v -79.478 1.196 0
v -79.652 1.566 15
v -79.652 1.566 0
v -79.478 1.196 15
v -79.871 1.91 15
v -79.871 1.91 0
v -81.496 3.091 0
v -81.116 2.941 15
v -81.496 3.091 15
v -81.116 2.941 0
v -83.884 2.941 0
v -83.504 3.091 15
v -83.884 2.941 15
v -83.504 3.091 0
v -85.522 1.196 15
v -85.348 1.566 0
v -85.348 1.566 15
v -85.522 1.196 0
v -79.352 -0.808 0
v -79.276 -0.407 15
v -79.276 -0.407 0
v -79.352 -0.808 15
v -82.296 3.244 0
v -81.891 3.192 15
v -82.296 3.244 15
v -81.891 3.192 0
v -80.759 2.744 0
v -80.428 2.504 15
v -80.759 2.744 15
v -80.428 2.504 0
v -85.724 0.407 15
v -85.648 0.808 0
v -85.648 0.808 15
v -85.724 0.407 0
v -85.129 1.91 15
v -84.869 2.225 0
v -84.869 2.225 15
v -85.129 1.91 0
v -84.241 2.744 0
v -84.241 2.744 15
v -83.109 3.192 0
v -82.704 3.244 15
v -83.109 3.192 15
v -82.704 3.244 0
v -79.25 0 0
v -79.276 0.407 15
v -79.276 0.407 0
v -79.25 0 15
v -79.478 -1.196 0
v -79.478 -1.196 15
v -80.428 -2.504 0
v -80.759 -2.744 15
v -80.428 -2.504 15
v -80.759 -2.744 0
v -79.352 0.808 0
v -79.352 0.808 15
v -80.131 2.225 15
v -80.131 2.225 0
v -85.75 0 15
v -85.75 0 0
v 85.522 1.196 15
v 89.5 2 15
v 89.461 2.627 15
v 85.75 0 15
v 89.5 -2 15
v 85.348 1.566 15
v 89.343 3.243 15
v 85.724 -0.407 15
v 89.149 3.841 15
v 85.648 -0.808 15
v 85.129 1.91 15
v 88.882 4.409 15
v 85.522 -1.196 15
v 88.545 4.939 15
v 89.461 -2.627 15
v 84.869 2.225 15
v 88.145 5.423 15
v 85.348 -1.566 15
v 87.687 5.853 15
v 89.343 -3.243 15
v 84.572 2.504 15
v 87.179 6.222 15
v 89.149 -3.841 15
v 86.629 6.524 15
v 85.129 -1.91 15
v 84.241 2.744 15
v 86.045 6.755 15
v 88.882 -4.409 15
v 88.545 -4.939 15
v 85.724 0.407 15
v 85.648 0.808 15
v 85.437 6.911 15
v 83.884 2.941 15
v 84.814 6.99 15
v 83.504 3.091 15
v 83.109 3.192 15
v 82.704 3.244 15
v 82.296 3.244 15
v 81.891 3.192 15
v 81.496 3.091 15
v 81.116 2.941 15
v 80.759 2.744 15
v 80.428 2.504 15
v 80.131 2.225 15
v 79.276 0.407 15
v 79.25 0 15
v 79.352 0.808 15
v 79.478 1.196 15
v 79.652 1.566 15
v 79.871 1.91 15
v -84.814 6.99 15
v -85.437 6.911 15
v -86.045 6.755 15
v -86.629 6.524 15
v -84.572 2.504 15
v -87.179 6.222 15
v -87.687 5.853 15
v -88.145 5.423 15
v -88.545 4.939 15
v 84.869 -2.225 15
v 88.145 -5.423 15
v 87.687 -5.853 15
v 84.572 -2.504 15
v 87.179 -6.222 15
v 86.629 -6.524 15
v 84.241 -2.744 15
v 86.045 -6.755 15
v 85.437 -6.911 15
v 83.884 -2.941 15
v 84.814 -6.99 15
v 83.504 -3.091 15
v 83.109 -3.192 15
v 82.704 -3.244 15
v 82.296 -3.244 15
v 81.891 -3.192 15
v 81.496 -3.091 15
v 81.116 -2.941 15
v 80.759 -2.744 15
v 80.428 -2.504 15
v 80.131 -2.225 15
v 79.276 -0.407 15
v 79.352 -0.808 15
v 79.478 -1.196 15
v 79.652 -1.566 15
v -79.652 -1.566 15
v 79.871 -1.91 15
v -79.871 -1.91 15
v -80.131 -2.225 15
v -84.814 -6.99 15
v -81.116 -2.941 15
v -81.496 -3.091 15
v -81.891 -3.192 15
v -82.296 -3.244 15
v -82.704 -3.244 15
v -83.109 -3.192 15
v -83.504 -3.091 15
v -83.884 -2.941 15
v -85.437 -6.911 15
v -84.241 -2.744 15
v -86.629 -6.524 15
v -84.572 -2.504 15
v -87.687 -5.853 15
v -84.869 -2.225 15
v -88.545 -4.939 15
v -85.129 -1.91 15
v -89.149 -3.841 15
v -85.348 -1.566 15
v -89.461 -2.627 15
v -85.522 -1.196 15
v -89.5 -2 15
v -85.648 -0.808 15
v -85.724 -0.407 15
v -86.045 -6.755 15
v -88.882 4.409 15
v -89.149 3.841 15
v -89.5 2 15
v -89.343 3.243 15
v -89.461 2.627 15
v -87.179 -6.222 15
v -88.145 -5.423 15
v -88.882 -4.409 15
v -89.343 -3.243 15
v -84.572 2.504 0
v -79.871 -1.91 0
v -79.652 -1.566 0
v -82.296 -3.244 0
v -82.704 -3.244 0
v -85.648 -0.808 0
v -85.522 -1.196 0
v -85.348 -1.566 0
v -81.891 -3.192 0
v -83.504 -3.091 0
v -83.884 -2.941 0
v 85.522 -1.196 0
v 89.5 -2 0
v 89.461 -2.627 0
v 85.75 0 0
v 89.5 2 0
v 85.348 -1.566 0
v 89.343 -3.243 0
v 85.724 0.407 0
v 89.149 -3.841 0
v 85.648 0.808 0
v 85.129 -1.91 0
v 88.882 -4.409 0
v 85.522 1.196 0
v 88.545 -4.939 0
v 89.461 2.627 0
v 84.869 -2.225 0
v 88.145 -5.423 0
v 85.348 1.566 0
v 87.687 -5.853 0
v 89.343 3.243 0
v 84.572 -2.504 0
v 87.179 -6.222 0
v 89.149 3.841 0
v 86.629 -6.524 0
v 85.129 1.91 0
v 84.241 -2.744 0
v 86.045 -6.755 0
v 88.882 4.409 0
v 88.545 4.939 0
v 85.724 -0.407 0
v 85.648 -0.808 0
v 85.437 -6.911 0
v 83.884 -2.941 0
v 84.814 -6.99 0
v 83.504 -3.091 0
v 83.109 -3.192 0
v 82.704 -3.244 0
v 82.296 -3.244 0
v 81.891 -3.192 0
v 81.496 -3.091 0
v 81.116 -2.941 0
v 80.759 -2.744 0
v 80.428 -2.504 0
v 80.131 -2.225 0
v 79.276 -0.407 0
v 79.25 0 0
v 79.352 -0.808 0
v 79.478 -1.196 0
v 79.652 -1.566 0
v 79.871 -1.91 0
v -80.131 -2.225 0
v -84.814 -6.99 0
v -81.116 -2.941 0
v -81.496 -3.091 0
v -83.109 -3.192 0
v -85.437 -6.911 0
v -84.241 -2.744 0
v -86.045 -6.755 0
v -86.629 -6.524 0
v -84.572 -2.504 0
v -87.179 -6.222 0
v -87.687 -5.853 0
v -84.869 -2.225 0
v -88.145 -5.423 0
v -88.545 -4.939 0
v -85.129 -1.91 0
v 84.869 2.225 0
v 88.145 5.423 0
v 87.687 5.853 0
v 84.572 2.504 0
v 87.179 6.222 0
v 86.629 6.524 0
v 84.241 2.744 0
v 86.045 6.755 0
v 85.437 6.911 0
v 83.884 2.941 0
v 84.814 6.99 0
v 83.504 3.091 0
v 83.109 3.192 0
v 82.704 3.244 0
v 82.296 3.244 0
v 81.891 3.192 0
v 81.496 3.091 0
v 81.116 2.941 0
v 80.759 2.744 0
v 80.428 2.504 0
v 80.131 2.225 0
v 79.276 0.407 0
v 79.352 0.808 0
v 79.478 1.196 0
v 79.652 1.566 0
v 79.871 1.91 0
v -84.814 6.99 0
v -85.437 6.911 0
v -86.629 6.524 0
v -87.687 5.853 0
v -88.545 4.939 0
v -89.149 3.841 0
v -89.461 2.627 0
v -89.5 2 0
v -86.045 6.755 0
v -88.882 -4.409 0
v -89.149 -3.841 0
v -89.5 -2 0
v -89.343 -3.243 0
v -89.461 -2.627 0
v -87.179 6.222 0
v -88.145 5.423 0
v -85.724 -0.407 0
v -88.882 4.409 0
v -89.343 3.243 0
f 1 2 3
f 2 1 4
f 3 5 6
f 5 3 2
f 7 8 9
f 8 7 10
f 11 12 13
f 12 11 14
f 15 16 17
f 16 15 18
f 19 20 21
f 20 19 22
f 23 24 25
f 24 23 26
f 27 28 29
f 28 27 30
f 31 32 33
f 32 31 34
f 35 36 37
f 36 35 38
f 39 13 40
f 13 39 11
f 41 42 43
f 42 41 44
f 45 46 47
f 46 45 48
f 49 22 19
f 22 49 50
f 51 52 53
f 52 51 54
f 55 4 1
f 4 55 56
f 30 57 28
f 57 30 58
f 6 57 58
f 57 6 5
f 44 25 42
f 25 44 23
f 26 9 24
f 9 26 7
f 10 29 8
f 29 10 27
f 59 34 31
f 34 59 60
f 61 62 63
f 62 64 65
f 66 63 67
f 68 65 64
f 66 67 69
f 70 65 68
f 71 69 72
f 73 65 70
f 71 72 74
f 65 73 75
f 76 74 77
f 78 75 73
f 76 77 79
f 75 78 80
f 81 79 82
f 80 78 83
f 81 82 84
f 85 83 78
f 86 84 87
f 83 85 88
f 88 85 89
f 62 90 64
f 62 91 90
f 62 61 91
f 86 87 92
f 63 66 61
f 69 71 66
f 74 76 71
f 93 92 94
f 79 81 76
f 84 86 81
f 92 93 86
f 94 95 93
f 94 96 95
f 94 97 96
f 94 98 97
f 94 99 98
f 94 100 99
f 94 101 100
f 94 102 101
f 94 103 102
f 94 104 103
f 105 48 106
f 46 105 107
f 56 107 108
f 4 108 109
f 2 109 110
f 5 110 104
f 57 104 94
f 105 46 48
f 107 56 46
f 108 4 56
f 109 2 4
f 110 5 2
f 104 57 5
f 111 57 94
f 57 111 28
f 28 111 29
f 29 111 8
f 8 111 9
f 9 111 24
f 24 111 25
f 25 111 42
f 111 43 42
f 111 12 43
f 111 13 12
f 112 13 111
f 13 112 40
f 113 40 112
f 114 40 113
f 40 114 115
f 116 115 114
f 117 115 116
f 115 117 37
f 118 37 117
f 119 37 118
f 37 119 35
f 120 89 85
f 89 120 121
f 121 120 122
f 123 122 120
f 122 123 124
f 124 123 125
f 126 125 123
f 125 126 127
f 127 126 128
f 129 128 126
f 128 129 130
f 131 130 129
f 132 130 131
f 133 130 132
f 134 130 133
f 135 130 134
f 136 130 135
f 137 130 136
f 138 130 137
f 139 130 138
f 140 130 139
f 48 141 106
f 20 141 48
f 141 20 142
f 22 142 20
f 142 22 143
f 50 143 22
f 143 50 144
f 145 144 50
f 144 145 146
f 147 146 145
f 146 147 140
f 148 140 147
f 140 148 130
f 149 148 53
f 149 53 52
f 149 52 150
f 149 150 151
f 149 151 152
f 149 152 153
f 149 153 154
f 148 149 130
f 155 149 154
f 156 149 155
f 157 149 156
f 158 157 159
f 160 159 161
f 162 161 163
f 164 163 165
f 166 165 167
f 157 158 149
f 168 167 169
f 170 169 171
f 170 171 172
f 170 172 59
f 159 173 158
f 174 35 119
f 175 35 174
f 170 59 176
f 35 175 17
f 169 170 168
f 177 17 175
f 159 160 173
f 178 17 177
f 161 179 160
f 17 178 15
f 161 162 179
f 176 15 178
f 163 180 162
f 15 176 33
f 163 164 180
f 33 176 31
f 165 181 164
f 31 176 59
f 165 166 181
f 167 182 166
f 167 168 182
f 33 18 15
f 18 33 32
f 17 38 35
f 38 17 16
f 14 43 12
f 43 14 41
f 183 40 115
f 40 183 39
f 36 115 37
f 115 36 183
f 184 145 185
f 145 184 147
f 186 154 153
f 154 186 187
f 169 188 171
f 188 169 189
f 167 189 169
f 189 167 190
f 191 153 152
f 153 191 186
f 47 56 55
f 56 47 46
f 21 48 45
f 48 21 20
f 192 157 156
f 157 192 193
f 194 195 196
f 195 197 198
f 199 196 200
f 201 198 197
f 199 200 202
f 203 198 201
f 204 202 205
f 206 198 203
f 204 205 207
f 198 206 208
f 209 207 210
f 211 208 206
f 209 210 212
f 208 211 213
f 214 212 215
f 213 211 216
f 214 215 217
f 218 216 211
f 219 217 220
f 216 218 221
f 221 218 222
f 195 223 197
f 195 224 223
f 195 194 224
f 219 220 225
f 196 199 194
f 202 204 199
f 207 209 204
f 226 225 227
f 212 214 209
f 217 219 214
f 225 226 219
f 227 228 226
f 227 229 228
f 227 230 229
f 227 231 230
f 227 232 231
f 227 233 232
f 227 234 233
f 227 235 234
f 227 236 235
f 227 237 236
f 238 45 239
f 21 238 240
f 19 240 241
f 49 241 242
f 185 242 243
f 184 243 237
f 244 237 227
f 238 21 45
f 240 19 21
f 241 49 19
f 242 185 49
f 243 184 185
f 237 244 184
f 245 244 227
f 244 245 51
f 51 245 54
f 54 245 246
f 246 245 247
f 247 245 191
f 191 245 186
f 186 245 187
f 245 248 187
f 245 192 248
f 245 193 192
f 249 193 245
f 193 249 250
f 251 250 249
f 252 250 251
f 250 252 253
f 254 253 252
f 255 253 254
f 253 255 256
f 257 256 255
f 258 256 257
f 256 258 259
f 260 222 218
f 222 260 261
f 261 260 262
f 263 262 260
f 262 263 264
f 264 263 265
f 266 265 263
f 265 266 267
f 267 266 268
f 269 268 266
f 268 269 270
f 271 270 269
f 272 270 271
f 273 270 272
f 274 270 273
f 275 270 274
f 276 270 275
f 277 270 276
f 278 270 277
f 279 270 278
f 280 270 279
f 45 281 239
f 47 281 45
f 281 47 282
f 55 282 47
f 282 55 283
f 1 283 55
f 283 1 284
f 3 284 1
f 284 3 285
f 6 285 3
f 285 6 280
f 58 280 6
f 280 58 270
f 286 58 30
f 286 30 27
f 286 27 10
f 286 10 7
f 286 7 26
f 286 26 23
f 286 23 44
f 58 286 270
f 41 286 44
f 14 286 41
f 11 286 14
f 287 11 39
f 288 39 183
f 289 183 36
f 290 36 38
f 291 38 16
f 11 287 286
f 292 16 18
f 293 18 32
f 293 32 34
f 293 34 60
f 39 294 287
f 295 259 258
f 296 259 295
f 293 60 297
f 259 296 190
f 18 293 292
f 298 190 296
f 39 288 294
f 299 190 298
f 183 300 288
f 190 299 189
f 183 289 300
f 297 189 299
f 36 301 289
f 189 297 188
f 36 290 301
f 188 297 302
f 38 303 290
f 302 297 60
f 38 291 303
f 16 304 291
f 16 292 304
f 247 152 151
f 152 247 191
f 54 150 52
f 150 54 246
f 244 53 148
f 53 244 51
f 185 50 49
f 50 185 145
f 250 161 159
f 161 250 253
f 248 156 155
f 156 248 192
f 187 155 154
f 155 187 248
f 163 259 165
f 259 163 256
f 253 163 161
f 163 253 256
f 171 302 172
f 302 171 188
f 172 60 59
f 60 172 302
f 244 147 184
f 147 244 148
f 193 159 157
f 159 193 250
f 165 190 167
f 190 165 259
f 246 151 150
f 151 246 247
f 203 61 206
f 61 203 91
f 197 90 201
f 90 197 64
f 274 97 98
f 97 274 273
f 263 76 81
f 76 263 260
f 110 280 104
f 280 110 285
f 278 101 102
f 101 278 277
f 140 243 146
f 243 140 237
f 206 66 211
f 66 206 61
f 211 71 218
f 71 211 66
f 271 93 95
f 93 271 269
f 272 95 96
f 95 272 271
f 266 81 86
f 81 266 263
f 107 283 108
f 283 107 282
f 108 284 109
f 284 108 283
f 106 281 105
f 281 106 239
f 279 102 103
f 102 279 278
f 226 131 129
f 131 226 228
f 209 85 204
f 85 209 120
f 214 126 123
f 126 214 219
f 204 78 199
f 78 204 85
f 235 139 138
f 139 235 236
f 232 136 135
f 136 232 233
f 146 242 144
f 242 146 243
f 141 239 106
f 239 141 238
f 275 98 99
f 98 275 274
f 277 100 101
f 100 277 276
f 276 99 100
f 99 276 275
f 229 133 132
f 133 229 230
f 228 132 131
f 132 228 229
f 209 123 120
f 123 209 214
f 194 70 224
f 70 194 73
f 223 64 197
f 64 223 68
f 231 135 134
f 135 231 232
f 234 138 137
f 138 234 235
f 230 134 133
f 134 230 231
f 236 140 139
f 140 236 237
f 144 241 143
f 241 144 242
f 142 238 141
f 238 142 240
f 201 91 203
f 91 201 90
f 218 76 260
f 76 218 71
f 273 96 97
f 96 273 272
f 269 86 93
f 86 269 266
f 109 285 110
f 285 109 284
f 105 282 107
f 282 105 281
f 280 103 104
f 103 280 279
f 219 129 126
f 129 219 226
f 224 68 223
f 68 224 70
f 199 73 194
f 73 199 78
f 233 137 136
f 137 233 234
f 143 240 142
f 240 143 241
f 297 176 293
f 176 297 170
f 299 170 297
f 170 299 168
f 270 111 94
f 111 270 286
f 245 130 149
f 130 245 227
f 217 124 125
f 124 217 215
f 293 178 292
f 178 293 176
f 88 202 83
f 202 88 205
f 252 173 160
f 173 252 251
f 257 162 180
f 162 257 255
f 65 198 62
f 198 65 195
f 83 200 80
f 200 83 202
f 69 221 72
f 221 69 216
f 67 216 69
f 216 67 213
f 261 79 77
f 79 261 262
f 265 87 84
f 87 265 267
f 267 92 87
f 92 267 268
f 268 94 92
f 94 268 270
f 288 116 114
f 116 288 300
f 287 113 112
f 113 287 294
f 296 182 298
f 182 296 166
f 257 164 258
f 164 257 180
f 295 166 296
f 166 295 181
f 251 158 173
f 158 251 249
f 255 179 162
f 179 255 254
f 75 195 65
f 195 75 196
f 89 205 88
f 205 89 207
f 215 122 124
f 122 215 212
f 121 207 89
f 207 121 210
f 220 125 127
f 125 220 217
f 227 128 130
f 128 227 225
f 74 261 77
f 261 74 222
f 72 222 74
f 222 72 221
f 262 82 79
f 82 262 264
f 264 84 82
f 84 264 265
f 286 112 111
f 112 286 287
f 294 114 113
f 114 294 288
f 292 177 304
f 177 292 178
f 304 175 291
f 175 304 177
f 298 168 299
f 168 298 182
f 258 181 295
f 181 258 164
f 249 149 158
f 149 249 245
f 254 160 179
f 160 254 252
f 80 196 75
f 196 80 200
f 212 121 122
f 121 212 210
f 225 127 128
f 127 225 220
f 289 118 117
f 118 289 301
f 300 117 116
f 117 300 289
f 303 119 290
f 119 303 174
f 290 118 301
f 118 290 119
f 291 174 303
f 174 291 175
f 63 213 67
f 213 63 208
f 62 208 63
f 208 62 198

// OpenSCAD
$fn = 50;


difference() {
	union() {
		hull() {
			translate(v = [-84.5000000000, 2.0000000000, 0]) {
				cylinder(h = 15, r = 5);
			}
			translate(v = [84.5000000000, 2.0000000000, 0]) {
				cylinder(h = 15, r = 5);
			}
			translate(v = [-84.5000000000, -2.0000000000, 0]) {
				cylinder(h = 15, r = 5);
			}
			translate(v = [84.5000000000, -2.0000000000, 0]) {
				cylinder(h = 15, r = 5);
			}
		}
	}
	union() {
		translate(v = [-82.5000000000, 0.0000000000, -100.0000000000]) {
			cylinder(h = 200, r = 3.2500000000);
		}
		translate(v = [-82.5000000000, 0.0000000000, -100.0000000000]) {
			cylinder(h = 200, r = 3.2500000000);
		}
		translate(v = [82.5000000000, 0.0000000000, -100.0000000000]) {
			cylinder(h = 200, r = 3.2500000000);
		}
		translate(v = [82.5000000000, 0.0000000000, -100.0000000000]) {
			cylinder(h = 200, r = 3.2500000000);
		}
	}
}
